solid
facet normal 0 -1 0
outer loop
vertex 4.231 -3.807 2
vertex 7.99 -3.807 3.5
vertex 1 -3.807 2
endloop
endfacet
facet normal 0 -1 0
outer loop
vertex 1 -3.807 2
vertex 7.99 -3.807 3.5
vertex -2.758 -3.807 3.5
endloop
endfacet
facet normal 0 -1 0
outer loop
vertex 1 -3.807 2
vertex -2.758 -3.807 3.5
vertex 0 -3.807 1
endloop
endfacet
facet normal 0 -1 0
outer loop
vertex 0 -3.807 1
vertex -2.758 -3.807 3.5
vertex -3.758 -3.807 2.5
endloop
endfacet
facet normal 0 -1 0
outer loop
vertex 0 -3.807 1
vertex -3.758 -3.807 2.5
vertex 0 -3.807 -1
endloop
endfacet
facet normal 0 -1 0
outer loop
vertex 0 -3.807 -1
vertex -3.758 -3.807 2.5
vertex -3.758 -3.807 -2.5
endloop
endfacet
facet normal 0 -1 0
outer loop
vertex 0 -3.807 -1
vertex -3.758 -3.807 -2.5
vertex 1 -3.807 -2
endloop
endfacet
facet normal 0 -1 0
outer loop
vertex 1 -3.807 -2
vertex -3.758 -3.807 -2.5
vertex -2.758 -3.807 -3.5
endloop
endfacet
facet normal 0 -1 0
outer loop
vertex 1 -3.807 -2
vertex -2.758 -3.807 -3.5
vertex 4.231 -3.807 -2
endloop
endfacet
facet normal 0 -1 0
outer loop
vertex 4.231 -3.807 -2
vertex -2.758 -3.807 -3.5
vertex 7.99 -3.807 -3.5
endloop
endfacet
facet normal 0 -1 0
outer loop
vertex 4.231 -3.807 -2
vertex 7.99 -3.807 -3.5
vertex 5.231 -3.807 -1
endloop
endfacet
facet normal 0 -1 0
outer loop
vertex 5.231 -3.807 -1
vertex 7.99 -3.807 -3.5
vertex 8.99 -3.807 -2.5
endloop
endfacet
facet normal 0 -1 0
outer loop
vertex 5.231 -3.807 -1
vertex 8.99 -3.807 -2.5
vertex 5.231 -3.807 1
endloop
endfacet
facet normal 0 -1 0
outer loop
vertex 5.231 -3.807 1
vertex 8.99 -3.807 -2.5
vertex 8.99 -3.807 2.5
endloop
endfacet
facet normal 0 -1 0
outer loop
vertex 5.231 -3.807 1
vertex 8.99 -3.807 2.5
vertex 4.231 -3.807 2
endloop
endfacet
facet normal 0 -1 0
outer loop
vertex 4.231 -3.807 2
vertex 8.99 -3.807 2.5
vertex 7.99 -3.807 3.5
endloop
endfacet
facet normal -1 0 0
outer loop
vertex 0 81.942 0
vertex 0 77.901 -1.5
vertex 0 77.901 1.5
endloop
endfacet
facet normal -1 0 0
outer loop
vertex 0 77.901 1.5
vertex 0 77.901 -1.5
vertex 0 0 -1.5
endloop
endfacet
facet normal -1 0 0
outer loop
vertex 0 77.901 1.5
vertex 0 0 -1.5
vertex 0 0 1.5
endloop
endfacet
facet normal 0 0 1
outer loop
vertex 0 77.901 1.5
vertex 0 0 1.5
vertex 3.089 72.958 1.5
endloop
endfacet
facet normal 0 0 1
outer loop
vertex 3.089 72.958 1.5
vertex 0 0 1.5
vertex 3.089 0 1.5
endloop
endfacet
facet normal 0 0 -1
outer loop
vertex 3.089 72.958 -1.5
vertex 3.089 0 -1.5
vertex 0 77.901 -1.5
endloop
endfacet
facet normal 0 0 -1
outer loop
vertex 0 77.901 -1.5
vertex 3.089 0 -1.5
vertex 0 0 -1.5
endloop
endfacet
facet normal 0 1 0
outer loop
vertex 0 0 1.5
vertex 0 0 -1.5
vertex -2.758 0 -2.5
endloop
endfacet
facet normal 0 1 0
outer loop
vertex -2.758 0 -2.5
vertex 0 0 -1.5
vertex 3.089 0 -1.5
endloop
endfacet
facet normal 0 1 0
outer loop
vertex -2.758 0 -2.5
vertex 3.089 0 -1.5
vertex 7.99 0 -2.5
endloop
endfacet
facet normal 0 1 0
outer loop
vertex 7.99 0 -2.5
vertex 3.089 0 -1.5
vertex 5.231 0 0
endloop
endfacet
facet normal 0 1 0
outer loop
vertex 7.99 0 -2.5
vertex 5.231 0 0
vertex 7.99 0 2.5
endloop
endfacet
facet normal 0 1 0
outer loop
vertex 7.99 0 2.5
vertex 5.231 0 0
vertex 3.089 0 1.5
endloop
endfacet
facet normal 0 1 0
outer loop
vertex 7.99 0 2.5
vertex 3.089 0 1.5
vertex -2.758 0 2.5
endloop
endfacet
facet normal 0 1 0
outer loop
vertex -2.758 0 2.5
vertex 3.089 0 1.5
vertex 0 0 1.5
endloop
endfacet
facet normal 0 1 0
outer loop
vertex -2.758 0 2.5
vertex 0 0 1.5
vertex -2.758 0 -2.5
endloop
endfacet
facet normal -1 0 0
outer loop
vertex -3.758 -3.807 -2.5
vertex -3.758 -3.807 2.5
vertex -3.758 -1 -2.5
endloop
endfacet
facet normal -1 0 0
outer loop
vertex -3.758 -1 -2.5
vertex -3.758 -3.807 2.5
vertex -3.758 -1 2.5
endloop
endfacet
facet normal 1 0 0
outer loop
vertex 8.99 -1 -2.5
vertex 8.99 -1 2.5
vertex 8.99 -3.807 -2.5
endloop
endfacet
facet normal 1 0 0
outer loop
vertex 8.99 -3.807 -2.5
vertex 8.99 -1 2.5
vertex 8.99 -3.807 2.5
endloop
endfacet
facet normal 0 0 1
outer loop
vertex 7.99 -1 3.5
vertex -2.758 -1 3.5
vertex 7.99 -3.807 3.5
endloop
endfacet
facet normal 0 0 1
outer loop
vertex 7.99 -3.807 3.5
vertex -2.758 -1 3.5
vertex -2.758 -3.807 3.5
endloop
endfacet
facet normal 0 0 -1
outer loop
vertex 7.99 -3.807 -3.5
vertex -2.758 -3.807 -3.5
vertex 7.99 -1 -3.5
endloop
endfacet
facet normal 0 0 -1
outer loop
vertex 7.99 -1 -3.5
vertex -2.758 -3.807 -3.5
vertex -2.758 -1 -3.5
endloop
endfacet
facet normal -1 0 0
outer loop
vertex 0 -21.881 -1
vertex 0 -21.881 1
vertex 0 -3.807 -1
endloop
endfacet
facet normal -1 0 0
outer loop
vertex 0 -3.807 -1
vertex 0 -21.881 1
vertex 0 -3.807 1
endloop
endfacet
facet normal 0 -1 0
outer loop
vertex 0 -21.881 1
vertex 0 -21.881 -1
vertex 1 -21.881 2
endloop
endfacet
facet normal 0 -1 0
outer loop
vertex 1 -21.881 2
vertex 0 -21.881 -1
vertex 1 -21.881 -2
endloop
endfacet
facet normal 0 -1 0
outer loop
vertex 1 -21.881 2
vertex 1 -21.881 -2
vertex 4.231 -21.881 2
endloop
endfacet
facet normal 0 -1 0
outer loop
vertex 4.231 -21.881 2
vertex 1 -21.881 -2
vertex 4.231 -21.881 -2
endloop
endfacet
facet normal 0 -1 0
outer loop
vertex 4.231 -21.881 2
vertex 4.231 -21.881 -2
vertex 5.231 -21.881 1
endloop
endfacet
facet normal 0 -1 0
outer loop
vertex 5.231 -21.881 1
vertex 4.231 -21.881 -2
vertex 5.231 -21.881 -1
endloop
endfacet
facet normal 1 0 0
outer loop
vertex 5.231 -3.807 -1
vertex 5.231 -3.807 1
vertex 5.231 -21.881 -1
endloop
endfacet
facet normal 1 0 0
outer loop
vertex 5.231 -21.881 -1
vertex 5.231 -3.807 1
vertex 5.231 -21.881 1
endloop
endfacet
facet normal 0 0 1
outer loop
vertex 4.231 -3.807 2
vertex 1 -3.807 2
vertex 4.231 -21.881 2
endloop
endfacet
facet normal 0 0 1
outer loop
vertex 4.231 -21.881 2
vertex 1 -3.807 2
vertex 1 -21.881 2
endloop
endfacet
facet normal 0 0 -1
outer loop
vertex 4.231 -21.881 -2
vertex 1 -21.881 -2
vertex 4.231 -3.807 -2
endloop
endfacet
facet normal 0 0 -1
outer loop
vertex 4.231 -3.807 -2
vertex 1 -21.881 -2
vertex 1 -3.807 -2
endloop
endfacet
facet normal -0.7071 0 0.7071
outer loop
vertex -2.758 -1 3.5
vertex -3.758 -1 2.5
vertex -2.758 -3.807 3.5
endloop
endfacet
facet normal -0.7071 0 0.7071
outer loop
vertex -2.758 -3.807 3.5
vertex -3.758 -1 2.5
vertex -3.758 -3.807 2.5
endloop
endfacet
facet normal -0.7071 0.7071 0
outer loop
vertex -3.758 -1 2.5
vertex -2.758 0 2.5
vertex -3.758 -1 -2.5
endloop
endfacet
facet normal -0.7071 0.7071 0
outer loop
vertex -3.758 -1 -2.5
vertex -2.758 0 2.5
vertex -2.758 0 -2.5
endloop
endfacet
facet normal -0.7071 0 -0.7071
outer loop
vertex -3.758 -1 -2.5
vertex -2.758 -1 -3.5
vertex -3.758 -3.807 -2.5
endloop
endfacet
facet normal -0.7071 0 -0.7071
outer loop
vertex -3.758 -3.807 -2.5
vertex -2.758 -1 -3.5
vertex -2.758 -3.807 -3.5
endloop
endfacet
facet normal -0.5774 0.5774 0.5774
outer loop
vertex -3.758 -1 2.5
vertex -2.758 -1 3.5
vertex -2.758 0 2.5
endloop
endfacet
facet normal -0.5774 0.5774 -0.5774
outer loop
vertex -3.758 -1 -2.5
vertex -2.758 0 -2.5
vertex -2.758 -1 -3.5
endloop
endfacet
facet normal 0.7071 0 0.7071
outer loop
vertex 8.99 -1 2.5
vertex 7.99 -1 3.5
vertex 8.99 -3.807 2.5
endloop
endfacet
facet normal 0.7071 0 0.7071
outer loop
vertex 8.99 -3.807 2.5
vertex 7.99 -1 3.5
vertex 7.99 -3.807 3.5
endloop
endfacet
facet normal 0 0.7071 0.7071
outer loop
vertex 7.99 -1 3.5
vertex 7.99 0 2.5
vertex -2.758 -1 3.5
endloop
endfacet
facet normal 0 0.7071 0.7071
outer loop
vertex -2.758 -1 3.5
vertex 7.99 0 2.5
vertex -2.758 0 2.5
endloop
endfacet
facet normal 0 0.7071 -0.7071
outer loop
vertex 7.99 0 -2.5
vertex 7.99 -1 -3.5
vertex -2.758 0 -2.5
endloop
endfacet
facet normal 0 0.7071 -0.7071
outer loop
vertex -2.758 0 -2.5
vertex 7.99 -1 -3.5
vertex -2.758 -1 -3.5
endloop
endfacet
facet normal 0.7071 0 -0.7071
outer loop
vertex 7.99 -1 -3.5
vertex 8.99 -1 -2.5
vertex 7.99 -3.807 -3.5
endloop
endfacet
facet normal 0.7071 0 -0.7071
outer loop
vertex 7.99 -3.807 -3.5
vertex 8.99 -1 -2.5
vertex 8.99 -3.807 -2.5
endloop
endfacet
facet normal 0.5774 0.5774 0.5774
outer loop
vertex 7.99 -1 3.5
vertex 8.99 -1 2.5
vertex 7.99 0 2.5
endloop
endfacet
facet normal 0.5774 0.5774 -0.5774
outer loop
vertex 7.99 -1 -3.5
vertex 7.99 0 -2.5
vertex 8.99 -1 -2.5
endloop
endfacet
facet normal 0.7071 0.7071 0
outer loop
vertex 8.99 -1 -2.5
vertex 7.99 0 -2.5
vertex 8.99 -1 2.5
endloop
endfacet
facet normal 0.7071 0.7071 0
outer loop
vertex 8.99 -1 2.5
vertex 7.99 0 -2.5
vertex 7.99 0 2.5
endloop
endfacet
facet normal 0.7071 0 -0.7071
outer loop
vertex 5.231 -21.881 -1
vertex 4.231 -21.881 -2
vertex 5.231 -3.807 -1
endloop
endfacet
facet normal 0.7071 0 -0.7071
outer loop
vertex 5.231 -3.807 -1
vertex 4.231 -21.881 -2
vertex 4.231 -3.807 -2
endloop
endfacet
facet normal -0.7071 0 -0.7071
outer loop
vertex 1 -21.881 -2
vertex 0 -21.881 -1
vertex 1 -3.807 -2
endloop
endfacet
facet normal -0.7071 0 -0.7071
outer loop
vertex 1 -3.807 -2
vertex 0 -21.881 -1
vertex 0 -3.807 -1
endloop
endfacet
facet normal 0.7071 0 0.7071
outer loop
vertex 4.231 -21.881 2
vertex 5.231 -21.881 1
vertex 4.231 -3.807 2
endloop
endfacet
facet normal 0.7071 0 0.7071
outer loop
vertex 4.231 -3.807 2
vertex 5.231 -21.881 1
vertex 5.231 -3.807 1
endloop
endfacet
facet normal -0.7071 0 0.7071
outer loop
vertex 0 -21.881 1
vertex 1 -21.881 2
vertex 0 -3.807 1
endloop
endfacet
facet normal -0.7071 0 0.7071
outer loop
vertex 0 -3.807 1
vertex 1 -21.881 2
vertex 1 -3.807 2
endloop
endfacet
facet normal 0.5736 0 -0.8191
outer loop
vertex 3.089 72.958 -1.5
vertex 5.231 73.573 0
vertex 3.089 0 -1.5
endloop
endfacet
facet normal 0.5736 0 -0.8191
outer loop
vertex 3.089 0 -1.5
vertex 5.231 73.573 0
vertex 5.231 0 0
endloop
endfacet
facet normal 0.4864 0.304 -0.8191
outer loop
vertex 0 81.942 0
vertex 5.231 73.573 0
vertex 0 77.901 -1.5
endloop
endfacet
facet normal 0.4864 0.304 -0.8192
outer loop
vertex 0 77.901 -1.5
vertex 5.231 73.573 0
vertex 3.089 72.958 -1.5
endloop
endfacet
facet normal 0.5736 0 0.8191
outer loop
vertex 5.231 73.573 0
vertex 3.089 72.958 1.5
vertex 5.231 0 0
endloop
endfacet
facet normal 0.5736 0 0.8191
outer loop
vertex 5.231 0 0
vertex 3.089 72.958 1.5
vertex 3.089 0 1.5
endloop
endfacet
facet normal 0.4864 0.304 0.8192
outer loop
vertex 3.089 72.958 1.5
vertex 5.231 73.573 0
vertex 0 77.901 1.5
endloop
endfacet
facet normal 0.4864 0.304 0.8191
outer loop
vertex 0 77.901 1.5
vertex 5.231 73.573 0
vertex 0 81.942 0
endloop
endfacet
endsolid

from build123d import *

# Parameters (mm, degrees)
BOSS_EXTRUDE1_DEPTH = 1.5
SKETCH1_3_W         = 5.23149294
SKETCH1_3_H         = 18.074674524
BOSS_EXTRUDE2_DEPTH = 2
SKETCH1_4_W         = 12.747878717
SKETCH1_4_H         = 3.806509515
BOSS_EXTRUDE3_DEPTH = 3.5
CHAMFER1_SIZE       = 1
CHAMFER2_SIZE       = 2.14222201
CHAMFER2_SIZE_2     = 1.5


with BuildPart() as part:
    # Sketch1 → Boss-Extrude1 (new, symmetric)
    with BuildSketch(Plane.XY):
        Polygon((0, 81.942442457), (0, 0), (5.23149294, 0), (5.23149294, 73.572714139), align=None)
    extrude(amount=BOSS_EXTRUDE1_DEPTH, both=True)



with BuildPart() as body_2:
    # Sketch1<3> → Boss-Extrude2 (new, symmetric)
    with BuildSketch(Plane.XY):
        with Locations((2.61574647, -12.843846777)):
            Rectangle(SKETCH1_3_W, SKETCH1_3_H)
    extrude(amount=BOSS_EXTRUDE2_DEPTH, both=True)


with BuildPart() as part_1:
    add(part.part)

    add(body_2.part)  # Boss-Extrude3 merges body 2
    # Sketch1<4> → Boss-Extrude3 (add, symmetric)
    with BuildSketch(Plane.XY):
        with Locations((2.615746471, -1.903254758)):
            Rectangle(SKETCH1_4_W, SKETCH1_4_H)
    extrude(amount=BOSS_EXTRUDE3_DEPTH, both=True)

    # Chamfer1
    chamfer1_edges = [part_1.edges().sort_by_distance(p)[0] for p in [
        (2.61574647, 0, 3.5),
        (8.989685829, 0, 0),
        (-3.758192888, -1.903254757, -3.5),
        (-3.758192888, 0, 0),
        (8.989685829, -1.903254757, 3.5),
        (-3.758192888, -1.903254757, 3.5),
        (2.61574647, 0, -3.5),
        (8.989685829, -1.903254757, -3.5),
        (0, -12.843846777, -2),
        (5.23149294, -12.843846777, 2),
        (0, -12.843846777, 2),
        (5.23149294, -12.843846777, -2),
    ]]
    chamfer(chamfer1_edges, length=CHAMFER1_SIZE)

    # Chamfer2
    # the kernel refuses this chamfer: 2.14222201, 1.5 mm, written as the material it takes off along each edge
    with BuildSketch(Plane(origin=(5.23149294, 0, 1.5), x_dir=(-0.99975333476413, 0, 0.022209674198456916), z_dir=(0, 1, 0))) as chamfer2_piece_1:
        Polygon((CHAMFER2_SIZE * 0.999753334817, -CHAMFER2_SIZE * 0.0222096741996), (-CHAMFER2_SIZE_2 * 0.0222096741985, -CHAMFER2_SIZE_2 * 0.999753334764), (0, 0), align=None)
    extrude(amount=79.105114369, mode=Mode.SUBTRACT)
    with BuildSketch(Plane(origin=(5.23149294, 0, -1.5), x_dir=(-0.99975333476413, 0, -0.022209674198456916), z_dir=(0, 1, 0))) as chamfer2_piece_2:
        Polygon((CHAMFER2_SIZE * 0.999753334817, CHAMFER2_SIZE * 0.0222096741996), (-CHAMFER2_SIZE_2 * 0.0222096741985, CHAMFER2_SIZE_2 * 0.999753334764), (0, 0), align=None)
    extrude(amount=79.105114369, mode=Mode.SUBTRACT)
    with BuildSketch(Plane(origin=(8.163825559, 68.881352106, 1.5), x_dir=(-0.8477703422928946, -0.5298982705204714, 0.02220967419845706), z_dir=(-0.530029010251303, 0.8479795093585836, 0))) as chamfer2_piece_3:
        Polygon((CHAMFER2_SIZE * 0.999753334817, -CHAMFER2_SIZE * 0.0222096741996), (-CHAMFER2_SIZE_2 * 0.0222096741985, -CHAMFER2_SIZE_2 * 0.999753334764), (0, 0), align=None)
    extrude(amount=20.935001598, mode=Mode.SUBTRACT)
    with BuildSketch(Plane(origin=(8.163825559, 68.881352106, -1.5), x_dir=(-0.8477703422928946, -0.5298982705204714, -0.02220967419845706), z_dir=(-0.530029010251303, 0.8479795093585836, 0))) as chamfer2_piece_4:
        Polygon((CHAMFER2_SIZE * 0.999753334817, CHAMFER2_SIZE * 0.0222096741996), (-CHAMFER2_SIZE_2 * 0.0222096741985, CHAMFER2_SIZE_2 * 0.999753334764), (0, 0), align=None)
    extrude(amount=20.935001598, mode=Mode.SUBTRACT)


solid = part_1.part
